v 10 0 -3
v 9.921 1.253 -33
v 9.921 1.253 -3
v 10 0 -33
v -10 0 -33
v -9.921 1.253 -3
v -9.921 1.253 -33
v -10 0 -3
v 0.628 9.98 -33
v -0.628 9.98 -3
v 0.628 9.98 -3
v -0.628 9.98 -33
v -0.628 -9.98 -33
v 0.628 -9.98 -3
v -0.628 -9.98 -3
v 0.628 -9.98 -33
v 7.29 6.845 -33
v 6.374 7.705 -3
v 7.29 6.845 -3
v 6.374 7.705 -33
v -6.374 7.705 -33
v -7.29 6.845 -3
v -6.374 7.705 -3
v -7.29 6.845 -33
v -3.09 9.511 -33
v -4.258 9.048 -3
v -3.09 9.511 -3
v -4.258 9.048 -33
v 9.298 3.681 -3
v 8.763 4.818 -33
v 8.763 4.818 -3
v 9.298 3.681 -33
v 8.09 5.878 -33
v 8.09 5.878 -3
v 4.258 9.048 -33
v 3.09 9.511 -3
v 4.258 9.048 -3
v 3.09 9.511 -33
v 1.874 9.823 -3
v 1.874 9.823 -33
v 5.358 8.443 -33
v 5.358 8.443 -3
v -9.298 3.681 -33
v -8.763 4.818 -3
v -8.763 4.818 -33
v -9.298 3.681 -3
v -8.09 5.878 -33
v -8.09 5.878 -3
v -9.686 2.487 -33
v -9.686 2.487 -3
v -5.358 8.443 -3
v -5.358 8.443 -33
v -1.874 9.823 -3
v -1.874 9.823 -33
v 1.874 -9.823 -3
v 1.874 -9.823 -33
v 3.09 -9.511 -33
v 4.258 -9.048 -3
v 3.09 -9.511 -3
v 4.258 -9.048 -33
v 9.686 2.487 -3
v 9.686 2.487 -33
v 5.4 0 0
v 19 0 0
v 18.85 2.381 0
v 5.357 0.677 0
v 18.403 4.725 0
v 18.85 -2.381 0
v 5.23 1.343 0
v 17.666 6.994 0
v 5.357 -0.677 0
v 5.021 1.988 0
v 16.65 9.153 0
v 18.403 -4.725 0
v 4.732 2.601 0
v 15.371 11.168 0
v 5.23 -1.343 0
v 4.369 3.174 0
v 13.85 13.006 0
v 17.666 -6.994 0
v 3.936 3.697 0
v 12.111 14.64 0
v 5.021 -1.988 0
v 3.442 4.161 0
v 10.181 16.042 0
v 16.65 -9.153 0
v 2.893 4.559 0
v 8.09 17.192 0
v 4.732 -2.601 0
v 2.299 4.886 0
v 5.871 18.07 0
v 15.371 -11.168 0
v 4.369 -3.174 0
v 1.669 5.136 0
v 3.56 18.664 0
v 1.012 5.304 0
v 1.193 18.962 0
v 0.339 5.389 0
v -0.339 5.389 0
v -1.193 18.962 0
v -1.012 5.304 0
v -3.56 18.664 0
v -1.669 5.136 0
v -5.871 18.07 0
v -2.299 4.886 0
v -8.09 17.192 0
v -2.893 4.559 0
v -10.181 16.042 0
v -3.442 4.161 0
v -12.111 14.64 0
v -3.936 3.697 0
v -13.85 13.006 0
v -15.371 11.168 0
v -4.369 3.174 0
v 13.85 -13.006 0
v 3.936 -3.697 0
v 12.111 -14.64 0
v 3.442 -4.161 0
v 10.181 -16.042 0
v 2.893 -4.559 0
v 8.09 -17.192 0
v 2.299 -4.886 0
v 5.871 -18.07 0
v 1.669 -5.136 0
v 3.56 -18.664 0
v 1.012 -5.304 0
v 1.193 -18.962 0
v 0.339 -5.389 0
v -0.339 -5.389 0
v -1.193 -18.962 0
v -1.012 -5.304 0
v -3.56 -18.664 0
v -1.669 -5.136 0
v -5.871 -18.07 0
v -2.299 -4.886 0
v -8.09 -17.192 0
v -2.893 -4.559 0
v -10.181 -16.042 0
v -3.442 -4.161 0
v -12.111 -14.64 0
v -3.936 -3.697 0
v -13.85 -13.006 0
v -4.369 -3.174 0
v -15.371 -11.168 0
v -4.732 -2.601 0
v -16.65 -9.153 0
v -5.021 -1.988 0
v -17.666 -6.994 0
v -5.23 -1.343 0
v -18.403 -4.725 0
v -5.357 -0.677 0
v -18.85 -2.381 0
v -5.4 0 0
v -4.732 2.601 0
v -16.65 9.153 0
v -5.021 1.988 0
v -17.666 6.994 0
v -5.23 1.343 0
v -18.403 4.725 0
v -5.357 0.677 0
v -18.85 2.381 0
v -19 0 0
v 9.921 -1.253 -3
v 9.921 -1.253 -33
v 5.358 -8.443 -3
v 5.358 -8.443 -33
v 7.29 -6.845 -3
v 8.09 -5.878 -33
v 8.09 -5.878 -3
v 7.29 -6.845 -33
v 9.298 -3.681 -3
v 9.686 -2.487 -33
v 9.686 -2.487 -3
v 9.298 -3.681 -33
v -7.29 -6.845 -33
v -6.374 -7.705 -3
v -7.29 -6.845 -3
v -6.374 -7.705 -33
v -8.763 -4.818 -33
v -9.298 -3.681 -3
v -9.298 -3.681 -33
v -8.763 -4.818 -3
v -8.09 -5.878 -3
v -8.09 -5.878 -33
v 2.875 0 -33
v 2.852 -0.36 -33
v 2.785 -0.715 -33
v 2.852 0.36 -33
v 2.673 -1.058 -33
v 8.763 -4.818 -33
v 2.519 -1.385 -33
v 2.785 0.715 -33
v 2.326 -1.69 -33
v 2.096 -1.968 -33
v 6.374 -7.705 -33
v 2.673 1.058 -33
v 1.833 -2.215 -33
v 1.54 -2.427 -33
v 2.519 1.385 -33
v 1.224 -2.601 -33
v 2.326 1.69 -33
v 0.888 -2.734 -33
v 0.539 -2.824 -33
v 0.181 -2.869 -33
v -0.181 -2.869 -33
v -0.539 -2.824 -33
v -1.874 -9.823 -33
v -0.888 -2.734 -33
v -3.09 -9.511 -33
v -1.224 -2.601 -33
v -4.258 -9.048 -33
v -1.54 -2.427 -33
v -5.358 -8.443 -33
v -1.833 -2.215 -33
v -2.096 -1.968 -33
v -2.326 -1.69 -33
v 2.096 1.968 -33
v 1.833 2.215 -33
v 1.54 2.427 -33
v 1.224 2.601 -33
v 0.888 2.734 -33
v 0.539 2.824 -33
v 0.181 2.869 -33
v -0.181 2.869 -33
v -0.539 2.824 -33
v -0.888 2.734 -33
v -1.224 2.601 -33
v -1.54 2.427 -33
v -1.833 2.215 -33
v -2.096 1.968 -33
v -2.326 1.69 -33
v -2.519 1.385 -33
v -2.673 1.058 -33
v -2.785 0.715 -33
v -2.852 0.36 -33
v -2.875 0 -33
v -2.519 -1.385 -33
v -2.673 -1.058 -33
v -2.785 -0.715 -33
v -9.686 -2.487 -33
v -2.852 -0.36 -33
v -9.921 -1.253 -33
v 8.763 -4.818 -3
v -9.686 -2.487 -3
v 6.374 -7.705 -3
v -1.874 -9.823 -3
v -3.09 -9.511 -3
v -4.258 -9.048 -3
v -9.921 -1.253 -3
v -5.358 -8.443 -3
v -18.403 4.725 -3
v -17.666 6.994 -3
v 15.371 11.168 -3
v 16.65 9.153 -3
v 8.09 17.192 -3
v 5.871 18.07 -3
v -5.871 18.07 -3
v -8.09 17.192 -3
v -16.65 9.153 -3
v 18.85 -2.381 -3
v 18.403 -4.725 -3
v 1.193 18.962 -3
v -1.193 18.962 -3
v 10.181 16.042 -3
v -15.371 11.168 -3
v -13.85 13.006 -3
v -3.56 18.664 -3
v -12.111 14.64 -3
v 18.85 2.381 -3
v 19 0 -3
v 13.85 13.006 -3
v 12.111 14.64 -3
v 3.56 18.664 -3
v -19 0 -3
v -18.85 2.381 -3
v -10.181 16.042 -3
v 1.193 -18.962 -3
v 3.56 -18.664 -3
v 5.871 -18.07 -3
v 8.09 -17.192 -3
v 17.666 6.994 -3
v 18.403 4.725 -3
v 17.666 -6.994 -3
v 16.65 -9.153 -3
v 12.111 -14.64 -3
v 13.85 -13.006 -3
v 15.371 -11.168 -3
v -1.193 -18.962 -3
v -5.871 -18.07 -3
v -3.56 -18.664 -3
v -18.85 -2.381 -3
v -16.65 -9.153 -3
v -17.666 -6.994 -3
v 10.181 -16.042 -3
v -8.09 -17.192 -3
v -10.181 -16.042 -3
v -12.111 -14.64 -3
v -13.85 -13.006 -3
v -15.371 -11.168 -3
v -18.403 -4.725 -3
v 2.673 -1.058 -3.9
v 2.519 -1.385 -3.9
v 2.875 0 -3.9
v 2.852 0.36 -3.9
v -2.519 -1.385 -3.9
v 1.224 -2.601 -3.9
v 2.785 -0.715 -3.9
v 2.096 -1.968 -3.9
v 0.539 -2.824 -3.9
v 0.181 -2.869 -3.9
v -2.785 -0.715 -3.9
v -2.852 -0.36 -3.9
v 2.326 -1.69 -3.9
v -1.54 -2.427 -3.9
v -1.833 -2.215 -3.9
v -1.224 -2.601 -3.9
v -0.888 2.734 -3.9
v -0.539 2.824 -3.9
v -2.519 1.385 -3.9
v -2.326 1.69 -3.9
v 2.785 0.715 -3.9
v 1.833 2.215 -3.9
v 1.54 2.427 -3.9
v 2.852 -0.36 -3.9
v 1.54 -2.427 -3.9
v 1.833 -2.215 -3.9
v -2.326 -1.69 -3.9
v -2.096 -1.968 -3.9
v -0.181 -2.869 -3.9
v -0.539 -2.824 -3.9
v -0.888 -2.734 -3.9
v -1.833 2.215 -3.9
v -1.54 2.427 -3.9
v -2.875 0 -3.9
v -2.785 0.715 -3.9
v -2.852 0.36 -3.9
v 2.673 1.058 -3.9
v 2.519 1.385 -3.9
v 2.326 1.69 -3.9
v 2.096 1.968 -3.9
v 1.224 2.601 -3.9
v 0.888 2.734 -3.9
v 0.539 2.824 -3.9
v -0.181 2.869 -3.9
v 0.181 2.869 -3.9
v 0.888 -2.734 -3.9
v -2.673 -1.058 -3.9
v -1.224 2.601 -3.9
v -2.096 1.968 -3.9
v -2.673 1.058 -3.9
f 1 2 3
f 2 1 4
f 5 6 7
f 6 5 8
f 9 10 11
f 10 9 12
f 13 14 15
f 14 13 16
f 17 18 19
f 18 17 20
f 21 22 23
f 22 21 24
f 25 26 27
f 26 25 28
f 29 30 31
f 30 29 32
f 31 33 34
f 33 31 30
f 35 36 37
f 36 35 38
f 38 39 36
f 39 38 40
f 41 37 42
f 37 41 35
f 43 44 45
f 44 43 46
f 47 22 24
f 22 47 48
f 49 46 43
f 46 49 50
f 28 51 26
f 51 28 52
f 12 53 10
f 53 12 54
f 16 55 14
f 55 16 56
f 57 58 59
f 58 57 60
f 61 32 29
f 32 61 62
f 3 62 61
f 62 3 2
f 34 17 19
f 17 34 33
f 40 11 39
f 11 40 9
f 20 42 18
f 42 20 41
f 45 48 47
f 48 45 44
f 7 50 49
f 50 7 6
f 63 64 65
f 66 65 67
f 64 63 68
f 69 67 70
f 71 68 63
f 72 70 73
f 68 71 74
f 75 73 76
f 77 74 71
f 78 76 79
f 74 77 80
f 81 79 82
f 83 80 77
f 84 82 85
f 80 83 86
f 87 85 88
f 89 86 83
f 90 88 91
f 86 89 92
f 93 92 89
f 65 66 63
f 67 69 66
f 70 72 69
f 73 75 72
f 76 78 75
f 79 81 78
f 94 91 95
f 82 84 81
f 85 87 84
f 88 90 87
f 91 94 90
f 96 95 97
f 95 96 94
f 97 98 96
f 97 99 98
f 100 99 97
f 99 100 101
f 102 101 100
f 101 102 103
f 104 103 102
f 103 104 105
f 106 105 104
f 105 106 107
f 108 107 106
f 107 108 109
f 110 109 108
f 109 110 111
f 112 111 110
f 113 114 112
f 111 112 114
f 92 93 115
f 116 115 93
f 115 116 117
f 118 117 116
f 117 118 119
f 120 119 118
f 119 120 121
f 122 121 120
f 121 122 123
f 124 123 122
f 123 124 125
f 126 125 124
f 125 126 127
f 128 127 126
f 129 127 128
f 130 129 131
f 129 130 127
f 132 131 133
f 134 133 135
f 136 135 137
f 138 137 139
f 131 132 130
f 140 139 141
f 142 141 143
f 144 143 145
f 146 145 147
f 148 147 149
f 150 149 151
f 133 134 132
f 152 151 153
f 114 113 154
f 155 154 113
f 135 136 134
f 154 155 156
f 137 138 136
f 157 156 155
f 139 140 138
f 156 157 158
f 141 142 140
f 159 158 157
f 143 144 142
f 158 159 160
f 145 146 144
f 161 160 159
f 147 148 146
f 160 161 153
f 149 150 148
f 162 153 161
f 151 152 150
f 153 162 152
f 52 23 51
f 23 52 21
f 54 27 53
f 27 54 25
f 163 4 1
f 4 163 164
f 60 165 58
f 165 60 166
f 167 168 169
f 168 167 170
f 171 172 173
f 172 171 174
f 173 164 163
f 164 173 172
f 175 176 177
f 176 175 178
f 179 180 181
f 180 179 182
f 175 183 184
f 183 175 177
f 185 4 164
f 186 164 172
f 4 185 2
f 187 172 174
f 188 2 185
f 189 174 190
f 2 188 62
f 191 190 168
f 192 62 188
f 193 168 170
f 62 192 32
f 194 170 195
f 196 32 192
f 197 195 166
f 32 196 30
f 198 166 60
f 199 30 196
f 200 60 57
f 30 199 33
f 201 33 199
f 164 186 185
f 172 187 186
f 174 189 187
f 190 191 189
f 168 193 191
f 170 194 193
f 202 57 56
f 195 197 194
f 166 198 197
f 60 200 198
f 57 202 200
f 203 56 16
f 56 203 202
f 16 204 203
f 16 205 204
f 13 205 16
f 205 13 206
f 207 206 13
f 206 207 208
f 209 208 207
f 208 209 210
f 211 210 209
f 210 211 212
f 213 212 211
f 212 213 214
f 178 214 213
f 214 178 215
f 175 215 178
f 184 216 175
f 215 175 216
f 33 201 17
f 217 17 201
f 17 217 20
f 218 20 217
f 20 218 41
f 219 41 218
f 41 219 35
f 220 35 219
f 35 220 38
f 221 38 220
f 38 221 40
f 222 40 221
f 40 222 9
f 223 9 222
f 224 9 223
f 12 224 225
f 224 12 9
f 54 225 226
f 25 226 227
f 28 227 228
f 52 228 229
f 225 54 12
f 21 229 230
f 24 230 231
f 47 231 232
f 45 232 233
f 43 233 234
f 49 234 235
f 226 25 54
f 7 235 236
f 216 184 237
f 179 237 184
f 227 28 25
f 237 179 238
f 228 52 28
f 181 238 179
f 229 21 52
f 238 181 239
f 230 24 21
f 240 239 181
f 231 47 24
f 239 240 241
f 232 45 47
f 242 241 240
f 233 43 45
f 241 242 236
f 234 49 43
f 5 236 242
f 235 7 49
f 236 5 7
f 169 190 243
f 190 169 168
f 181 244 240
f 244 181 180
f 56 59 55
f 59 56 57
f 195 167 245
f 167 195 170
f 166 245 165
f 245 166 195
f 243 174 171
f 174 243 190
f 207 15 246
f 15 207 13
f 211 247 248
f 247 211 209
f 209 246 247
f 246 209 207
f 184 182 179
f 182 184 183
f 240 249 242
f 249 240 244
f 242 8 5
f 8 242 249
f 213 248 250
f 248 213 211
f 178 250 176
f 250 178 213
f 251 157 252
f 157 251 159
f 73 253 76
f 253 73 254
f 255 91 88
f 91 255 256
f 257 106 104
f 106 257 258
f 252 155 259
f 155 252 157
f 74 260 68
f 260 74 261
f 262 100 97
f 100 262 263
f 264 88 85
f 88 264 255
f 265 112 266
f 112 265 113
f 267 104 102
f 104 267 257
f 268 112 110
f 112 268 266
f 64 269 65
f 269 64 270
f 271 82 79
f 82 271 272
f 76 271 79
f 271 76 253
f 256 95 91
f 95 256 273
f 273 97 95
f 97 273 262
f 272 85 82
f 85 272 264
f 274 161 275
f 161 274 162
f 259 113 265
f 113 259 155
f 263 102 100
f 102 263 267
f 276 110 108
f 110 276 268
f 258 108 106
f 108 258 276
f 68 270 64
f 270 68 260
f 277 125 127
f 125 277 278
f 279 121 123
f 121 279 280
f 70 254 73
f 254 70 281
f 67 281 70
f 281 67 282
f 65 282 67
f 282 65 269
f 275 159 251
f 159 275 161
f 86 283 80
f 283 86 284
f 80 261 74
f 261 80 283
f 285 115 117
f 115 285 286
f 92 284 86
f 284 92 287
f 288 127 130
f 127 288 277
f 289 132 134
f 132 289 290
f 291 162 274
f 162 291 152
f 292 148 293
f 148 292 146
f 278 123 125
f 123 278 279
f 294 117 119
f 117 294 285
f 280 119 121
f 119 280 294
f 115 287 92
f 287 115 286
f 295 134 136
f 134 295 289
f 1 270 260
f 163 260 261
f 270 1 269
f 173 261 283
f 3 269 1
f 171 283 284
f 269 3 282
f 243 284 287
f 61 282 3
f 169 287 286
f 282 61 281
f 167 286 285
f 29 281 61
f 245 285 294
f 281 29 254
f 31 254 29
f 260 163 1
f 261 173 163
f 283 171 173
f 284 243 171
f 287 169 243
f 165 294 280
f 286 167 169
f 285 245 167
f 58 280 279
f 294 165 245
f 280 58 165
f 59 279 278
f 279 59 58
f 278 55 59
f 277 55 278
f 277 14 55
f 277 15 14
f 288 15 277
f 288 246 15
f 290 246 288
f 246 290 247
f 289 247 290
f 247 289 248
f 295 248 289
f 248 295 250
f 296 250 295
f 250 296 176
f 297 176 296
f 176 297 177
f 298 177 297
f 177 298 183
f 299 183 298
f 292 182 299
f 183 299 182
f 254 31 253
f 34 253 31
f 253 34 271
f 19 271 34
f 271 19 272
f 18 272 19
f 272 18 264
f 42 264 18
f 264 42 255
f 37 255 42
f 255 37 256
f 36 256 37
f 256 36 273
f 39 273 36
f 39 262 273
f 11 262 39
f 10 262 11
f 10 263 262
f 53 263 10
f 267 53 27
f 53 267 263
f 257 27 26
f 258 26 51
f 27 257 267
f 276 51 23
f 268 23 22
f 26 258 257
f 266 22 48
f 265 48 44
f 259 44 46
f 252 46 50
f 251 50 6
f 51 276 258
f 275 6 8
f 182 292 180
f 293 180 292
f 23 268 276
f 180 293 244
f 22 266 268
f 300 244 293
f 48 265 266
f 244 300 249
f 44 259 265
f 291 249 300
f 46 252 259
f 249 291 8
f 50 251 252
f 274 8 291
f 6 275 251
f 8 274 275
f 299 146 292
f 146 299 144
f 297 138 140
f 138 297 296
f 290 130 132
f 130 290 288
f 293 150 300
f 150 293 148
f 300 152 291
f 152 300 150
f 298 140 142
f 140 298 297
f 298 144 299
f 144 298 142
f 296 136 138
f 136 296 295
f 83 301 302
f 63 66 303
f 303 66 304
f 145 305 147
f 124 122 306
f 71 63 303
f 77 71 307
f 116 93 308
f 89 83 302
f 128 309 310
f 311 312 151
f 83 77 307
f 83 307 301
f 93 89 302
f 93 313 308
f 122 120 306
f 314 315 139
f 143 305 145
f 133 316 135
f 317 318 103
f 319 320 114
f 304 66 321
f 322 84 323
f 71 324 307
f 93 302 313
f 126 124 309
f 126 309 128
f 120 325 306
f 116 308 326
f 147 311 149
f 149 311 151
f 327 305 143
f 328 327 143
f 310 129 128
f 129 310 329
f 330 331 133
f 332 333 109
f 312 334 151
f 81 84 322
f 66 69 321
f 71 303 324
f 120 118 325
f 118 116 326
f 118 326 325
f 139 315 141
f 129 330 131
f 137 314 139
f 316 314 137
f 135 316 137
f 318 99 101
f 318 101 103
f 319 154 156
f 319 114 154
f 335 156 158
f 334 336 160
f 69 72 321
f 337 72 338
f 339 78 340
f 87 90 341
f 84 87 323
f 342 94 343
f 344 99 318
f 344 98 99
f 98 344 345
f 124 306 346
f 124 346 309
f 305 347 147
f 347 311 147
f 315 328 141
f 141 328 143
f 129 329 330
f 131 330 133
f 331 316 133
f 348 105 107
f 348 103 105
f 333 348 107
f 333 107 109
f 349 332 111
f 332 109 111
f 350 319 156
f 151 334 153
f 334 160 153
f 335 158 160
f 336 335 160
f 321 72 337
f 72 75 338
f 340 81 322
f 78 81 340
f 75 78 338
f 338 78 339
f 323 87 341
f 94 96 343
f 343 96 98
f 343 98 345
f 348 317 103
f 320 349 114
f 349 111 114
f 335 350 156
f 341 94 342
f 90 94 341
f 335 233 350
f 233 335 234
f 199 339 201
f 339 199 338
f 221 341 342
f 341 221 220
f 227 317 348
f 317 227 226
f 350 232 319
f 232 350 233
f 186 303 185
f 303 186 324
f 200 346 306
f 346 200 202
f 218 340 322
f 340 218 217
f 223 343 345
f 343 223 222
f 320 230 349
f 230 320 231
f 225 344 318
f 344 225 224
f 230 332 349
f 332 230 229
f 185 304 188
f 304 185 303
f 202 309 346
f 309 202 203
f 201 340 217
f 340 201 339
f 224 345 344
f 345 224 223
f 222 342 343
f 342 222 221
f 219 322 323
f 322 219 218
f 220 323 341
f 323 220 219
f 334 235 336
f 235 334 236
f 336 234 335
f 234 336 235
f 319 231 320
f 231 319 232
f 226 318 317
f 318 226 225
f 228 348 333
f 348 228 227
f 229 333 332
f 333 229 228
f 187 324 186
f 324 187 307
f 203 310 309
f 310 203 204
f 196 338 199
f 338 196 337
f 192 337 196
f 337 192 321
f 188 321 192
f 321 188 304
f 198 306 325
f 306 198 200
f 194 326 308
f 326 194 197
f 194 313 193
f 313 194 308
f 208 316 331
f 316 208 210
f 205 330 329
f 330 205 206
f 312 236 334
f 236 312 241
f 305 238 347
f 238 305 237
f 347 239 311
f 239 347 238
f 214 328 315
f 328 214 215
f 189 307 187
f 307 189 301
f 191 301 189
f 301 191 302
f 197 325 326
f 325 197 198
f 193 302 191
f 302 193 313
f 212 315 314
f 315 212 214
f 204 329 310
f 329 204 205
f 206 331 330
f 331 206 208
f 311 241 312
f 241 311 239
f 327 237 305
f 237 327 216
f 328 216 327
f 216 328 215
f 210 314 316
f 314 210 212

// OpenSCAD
$fn = 50;


difference() {
	union() {
		translate(v = [0, 0, -33.0000000000]) {
			cylinder(h = 33, r = 10.0000000000);
		}
		translate(v = [0, 0, -3.0000000000]) {
			cylinder(h = 3, r = 19.0000000000);
		}
	}
	union() {
		translate(v = [0, 0, 0]) {
			rotate(a = [0, 0, 0]) {
				difference() {
					union() {
						#translate(v = [0, 0, -33.0000000000]) {
							cylinder(h = 33, r = 2.6000000000);
						}
						#translate(v = [0, 0, -3.9000000000]) {
							cylinder(h = 3.9000000000, r1 = 2.8750000000, r2 = 5.4000000000);
						}
						#translate(v = [0, 0, -33.0000000000]) {
							cylinder(h = 33, r = 2.8750000000);
						}
						#translate(v = [0, 0, -33.0000000000]) {
							cylinder(h = 33, r = 2.6000000000);
						}
					}
					union();
				}
			}
		}
	}
}
